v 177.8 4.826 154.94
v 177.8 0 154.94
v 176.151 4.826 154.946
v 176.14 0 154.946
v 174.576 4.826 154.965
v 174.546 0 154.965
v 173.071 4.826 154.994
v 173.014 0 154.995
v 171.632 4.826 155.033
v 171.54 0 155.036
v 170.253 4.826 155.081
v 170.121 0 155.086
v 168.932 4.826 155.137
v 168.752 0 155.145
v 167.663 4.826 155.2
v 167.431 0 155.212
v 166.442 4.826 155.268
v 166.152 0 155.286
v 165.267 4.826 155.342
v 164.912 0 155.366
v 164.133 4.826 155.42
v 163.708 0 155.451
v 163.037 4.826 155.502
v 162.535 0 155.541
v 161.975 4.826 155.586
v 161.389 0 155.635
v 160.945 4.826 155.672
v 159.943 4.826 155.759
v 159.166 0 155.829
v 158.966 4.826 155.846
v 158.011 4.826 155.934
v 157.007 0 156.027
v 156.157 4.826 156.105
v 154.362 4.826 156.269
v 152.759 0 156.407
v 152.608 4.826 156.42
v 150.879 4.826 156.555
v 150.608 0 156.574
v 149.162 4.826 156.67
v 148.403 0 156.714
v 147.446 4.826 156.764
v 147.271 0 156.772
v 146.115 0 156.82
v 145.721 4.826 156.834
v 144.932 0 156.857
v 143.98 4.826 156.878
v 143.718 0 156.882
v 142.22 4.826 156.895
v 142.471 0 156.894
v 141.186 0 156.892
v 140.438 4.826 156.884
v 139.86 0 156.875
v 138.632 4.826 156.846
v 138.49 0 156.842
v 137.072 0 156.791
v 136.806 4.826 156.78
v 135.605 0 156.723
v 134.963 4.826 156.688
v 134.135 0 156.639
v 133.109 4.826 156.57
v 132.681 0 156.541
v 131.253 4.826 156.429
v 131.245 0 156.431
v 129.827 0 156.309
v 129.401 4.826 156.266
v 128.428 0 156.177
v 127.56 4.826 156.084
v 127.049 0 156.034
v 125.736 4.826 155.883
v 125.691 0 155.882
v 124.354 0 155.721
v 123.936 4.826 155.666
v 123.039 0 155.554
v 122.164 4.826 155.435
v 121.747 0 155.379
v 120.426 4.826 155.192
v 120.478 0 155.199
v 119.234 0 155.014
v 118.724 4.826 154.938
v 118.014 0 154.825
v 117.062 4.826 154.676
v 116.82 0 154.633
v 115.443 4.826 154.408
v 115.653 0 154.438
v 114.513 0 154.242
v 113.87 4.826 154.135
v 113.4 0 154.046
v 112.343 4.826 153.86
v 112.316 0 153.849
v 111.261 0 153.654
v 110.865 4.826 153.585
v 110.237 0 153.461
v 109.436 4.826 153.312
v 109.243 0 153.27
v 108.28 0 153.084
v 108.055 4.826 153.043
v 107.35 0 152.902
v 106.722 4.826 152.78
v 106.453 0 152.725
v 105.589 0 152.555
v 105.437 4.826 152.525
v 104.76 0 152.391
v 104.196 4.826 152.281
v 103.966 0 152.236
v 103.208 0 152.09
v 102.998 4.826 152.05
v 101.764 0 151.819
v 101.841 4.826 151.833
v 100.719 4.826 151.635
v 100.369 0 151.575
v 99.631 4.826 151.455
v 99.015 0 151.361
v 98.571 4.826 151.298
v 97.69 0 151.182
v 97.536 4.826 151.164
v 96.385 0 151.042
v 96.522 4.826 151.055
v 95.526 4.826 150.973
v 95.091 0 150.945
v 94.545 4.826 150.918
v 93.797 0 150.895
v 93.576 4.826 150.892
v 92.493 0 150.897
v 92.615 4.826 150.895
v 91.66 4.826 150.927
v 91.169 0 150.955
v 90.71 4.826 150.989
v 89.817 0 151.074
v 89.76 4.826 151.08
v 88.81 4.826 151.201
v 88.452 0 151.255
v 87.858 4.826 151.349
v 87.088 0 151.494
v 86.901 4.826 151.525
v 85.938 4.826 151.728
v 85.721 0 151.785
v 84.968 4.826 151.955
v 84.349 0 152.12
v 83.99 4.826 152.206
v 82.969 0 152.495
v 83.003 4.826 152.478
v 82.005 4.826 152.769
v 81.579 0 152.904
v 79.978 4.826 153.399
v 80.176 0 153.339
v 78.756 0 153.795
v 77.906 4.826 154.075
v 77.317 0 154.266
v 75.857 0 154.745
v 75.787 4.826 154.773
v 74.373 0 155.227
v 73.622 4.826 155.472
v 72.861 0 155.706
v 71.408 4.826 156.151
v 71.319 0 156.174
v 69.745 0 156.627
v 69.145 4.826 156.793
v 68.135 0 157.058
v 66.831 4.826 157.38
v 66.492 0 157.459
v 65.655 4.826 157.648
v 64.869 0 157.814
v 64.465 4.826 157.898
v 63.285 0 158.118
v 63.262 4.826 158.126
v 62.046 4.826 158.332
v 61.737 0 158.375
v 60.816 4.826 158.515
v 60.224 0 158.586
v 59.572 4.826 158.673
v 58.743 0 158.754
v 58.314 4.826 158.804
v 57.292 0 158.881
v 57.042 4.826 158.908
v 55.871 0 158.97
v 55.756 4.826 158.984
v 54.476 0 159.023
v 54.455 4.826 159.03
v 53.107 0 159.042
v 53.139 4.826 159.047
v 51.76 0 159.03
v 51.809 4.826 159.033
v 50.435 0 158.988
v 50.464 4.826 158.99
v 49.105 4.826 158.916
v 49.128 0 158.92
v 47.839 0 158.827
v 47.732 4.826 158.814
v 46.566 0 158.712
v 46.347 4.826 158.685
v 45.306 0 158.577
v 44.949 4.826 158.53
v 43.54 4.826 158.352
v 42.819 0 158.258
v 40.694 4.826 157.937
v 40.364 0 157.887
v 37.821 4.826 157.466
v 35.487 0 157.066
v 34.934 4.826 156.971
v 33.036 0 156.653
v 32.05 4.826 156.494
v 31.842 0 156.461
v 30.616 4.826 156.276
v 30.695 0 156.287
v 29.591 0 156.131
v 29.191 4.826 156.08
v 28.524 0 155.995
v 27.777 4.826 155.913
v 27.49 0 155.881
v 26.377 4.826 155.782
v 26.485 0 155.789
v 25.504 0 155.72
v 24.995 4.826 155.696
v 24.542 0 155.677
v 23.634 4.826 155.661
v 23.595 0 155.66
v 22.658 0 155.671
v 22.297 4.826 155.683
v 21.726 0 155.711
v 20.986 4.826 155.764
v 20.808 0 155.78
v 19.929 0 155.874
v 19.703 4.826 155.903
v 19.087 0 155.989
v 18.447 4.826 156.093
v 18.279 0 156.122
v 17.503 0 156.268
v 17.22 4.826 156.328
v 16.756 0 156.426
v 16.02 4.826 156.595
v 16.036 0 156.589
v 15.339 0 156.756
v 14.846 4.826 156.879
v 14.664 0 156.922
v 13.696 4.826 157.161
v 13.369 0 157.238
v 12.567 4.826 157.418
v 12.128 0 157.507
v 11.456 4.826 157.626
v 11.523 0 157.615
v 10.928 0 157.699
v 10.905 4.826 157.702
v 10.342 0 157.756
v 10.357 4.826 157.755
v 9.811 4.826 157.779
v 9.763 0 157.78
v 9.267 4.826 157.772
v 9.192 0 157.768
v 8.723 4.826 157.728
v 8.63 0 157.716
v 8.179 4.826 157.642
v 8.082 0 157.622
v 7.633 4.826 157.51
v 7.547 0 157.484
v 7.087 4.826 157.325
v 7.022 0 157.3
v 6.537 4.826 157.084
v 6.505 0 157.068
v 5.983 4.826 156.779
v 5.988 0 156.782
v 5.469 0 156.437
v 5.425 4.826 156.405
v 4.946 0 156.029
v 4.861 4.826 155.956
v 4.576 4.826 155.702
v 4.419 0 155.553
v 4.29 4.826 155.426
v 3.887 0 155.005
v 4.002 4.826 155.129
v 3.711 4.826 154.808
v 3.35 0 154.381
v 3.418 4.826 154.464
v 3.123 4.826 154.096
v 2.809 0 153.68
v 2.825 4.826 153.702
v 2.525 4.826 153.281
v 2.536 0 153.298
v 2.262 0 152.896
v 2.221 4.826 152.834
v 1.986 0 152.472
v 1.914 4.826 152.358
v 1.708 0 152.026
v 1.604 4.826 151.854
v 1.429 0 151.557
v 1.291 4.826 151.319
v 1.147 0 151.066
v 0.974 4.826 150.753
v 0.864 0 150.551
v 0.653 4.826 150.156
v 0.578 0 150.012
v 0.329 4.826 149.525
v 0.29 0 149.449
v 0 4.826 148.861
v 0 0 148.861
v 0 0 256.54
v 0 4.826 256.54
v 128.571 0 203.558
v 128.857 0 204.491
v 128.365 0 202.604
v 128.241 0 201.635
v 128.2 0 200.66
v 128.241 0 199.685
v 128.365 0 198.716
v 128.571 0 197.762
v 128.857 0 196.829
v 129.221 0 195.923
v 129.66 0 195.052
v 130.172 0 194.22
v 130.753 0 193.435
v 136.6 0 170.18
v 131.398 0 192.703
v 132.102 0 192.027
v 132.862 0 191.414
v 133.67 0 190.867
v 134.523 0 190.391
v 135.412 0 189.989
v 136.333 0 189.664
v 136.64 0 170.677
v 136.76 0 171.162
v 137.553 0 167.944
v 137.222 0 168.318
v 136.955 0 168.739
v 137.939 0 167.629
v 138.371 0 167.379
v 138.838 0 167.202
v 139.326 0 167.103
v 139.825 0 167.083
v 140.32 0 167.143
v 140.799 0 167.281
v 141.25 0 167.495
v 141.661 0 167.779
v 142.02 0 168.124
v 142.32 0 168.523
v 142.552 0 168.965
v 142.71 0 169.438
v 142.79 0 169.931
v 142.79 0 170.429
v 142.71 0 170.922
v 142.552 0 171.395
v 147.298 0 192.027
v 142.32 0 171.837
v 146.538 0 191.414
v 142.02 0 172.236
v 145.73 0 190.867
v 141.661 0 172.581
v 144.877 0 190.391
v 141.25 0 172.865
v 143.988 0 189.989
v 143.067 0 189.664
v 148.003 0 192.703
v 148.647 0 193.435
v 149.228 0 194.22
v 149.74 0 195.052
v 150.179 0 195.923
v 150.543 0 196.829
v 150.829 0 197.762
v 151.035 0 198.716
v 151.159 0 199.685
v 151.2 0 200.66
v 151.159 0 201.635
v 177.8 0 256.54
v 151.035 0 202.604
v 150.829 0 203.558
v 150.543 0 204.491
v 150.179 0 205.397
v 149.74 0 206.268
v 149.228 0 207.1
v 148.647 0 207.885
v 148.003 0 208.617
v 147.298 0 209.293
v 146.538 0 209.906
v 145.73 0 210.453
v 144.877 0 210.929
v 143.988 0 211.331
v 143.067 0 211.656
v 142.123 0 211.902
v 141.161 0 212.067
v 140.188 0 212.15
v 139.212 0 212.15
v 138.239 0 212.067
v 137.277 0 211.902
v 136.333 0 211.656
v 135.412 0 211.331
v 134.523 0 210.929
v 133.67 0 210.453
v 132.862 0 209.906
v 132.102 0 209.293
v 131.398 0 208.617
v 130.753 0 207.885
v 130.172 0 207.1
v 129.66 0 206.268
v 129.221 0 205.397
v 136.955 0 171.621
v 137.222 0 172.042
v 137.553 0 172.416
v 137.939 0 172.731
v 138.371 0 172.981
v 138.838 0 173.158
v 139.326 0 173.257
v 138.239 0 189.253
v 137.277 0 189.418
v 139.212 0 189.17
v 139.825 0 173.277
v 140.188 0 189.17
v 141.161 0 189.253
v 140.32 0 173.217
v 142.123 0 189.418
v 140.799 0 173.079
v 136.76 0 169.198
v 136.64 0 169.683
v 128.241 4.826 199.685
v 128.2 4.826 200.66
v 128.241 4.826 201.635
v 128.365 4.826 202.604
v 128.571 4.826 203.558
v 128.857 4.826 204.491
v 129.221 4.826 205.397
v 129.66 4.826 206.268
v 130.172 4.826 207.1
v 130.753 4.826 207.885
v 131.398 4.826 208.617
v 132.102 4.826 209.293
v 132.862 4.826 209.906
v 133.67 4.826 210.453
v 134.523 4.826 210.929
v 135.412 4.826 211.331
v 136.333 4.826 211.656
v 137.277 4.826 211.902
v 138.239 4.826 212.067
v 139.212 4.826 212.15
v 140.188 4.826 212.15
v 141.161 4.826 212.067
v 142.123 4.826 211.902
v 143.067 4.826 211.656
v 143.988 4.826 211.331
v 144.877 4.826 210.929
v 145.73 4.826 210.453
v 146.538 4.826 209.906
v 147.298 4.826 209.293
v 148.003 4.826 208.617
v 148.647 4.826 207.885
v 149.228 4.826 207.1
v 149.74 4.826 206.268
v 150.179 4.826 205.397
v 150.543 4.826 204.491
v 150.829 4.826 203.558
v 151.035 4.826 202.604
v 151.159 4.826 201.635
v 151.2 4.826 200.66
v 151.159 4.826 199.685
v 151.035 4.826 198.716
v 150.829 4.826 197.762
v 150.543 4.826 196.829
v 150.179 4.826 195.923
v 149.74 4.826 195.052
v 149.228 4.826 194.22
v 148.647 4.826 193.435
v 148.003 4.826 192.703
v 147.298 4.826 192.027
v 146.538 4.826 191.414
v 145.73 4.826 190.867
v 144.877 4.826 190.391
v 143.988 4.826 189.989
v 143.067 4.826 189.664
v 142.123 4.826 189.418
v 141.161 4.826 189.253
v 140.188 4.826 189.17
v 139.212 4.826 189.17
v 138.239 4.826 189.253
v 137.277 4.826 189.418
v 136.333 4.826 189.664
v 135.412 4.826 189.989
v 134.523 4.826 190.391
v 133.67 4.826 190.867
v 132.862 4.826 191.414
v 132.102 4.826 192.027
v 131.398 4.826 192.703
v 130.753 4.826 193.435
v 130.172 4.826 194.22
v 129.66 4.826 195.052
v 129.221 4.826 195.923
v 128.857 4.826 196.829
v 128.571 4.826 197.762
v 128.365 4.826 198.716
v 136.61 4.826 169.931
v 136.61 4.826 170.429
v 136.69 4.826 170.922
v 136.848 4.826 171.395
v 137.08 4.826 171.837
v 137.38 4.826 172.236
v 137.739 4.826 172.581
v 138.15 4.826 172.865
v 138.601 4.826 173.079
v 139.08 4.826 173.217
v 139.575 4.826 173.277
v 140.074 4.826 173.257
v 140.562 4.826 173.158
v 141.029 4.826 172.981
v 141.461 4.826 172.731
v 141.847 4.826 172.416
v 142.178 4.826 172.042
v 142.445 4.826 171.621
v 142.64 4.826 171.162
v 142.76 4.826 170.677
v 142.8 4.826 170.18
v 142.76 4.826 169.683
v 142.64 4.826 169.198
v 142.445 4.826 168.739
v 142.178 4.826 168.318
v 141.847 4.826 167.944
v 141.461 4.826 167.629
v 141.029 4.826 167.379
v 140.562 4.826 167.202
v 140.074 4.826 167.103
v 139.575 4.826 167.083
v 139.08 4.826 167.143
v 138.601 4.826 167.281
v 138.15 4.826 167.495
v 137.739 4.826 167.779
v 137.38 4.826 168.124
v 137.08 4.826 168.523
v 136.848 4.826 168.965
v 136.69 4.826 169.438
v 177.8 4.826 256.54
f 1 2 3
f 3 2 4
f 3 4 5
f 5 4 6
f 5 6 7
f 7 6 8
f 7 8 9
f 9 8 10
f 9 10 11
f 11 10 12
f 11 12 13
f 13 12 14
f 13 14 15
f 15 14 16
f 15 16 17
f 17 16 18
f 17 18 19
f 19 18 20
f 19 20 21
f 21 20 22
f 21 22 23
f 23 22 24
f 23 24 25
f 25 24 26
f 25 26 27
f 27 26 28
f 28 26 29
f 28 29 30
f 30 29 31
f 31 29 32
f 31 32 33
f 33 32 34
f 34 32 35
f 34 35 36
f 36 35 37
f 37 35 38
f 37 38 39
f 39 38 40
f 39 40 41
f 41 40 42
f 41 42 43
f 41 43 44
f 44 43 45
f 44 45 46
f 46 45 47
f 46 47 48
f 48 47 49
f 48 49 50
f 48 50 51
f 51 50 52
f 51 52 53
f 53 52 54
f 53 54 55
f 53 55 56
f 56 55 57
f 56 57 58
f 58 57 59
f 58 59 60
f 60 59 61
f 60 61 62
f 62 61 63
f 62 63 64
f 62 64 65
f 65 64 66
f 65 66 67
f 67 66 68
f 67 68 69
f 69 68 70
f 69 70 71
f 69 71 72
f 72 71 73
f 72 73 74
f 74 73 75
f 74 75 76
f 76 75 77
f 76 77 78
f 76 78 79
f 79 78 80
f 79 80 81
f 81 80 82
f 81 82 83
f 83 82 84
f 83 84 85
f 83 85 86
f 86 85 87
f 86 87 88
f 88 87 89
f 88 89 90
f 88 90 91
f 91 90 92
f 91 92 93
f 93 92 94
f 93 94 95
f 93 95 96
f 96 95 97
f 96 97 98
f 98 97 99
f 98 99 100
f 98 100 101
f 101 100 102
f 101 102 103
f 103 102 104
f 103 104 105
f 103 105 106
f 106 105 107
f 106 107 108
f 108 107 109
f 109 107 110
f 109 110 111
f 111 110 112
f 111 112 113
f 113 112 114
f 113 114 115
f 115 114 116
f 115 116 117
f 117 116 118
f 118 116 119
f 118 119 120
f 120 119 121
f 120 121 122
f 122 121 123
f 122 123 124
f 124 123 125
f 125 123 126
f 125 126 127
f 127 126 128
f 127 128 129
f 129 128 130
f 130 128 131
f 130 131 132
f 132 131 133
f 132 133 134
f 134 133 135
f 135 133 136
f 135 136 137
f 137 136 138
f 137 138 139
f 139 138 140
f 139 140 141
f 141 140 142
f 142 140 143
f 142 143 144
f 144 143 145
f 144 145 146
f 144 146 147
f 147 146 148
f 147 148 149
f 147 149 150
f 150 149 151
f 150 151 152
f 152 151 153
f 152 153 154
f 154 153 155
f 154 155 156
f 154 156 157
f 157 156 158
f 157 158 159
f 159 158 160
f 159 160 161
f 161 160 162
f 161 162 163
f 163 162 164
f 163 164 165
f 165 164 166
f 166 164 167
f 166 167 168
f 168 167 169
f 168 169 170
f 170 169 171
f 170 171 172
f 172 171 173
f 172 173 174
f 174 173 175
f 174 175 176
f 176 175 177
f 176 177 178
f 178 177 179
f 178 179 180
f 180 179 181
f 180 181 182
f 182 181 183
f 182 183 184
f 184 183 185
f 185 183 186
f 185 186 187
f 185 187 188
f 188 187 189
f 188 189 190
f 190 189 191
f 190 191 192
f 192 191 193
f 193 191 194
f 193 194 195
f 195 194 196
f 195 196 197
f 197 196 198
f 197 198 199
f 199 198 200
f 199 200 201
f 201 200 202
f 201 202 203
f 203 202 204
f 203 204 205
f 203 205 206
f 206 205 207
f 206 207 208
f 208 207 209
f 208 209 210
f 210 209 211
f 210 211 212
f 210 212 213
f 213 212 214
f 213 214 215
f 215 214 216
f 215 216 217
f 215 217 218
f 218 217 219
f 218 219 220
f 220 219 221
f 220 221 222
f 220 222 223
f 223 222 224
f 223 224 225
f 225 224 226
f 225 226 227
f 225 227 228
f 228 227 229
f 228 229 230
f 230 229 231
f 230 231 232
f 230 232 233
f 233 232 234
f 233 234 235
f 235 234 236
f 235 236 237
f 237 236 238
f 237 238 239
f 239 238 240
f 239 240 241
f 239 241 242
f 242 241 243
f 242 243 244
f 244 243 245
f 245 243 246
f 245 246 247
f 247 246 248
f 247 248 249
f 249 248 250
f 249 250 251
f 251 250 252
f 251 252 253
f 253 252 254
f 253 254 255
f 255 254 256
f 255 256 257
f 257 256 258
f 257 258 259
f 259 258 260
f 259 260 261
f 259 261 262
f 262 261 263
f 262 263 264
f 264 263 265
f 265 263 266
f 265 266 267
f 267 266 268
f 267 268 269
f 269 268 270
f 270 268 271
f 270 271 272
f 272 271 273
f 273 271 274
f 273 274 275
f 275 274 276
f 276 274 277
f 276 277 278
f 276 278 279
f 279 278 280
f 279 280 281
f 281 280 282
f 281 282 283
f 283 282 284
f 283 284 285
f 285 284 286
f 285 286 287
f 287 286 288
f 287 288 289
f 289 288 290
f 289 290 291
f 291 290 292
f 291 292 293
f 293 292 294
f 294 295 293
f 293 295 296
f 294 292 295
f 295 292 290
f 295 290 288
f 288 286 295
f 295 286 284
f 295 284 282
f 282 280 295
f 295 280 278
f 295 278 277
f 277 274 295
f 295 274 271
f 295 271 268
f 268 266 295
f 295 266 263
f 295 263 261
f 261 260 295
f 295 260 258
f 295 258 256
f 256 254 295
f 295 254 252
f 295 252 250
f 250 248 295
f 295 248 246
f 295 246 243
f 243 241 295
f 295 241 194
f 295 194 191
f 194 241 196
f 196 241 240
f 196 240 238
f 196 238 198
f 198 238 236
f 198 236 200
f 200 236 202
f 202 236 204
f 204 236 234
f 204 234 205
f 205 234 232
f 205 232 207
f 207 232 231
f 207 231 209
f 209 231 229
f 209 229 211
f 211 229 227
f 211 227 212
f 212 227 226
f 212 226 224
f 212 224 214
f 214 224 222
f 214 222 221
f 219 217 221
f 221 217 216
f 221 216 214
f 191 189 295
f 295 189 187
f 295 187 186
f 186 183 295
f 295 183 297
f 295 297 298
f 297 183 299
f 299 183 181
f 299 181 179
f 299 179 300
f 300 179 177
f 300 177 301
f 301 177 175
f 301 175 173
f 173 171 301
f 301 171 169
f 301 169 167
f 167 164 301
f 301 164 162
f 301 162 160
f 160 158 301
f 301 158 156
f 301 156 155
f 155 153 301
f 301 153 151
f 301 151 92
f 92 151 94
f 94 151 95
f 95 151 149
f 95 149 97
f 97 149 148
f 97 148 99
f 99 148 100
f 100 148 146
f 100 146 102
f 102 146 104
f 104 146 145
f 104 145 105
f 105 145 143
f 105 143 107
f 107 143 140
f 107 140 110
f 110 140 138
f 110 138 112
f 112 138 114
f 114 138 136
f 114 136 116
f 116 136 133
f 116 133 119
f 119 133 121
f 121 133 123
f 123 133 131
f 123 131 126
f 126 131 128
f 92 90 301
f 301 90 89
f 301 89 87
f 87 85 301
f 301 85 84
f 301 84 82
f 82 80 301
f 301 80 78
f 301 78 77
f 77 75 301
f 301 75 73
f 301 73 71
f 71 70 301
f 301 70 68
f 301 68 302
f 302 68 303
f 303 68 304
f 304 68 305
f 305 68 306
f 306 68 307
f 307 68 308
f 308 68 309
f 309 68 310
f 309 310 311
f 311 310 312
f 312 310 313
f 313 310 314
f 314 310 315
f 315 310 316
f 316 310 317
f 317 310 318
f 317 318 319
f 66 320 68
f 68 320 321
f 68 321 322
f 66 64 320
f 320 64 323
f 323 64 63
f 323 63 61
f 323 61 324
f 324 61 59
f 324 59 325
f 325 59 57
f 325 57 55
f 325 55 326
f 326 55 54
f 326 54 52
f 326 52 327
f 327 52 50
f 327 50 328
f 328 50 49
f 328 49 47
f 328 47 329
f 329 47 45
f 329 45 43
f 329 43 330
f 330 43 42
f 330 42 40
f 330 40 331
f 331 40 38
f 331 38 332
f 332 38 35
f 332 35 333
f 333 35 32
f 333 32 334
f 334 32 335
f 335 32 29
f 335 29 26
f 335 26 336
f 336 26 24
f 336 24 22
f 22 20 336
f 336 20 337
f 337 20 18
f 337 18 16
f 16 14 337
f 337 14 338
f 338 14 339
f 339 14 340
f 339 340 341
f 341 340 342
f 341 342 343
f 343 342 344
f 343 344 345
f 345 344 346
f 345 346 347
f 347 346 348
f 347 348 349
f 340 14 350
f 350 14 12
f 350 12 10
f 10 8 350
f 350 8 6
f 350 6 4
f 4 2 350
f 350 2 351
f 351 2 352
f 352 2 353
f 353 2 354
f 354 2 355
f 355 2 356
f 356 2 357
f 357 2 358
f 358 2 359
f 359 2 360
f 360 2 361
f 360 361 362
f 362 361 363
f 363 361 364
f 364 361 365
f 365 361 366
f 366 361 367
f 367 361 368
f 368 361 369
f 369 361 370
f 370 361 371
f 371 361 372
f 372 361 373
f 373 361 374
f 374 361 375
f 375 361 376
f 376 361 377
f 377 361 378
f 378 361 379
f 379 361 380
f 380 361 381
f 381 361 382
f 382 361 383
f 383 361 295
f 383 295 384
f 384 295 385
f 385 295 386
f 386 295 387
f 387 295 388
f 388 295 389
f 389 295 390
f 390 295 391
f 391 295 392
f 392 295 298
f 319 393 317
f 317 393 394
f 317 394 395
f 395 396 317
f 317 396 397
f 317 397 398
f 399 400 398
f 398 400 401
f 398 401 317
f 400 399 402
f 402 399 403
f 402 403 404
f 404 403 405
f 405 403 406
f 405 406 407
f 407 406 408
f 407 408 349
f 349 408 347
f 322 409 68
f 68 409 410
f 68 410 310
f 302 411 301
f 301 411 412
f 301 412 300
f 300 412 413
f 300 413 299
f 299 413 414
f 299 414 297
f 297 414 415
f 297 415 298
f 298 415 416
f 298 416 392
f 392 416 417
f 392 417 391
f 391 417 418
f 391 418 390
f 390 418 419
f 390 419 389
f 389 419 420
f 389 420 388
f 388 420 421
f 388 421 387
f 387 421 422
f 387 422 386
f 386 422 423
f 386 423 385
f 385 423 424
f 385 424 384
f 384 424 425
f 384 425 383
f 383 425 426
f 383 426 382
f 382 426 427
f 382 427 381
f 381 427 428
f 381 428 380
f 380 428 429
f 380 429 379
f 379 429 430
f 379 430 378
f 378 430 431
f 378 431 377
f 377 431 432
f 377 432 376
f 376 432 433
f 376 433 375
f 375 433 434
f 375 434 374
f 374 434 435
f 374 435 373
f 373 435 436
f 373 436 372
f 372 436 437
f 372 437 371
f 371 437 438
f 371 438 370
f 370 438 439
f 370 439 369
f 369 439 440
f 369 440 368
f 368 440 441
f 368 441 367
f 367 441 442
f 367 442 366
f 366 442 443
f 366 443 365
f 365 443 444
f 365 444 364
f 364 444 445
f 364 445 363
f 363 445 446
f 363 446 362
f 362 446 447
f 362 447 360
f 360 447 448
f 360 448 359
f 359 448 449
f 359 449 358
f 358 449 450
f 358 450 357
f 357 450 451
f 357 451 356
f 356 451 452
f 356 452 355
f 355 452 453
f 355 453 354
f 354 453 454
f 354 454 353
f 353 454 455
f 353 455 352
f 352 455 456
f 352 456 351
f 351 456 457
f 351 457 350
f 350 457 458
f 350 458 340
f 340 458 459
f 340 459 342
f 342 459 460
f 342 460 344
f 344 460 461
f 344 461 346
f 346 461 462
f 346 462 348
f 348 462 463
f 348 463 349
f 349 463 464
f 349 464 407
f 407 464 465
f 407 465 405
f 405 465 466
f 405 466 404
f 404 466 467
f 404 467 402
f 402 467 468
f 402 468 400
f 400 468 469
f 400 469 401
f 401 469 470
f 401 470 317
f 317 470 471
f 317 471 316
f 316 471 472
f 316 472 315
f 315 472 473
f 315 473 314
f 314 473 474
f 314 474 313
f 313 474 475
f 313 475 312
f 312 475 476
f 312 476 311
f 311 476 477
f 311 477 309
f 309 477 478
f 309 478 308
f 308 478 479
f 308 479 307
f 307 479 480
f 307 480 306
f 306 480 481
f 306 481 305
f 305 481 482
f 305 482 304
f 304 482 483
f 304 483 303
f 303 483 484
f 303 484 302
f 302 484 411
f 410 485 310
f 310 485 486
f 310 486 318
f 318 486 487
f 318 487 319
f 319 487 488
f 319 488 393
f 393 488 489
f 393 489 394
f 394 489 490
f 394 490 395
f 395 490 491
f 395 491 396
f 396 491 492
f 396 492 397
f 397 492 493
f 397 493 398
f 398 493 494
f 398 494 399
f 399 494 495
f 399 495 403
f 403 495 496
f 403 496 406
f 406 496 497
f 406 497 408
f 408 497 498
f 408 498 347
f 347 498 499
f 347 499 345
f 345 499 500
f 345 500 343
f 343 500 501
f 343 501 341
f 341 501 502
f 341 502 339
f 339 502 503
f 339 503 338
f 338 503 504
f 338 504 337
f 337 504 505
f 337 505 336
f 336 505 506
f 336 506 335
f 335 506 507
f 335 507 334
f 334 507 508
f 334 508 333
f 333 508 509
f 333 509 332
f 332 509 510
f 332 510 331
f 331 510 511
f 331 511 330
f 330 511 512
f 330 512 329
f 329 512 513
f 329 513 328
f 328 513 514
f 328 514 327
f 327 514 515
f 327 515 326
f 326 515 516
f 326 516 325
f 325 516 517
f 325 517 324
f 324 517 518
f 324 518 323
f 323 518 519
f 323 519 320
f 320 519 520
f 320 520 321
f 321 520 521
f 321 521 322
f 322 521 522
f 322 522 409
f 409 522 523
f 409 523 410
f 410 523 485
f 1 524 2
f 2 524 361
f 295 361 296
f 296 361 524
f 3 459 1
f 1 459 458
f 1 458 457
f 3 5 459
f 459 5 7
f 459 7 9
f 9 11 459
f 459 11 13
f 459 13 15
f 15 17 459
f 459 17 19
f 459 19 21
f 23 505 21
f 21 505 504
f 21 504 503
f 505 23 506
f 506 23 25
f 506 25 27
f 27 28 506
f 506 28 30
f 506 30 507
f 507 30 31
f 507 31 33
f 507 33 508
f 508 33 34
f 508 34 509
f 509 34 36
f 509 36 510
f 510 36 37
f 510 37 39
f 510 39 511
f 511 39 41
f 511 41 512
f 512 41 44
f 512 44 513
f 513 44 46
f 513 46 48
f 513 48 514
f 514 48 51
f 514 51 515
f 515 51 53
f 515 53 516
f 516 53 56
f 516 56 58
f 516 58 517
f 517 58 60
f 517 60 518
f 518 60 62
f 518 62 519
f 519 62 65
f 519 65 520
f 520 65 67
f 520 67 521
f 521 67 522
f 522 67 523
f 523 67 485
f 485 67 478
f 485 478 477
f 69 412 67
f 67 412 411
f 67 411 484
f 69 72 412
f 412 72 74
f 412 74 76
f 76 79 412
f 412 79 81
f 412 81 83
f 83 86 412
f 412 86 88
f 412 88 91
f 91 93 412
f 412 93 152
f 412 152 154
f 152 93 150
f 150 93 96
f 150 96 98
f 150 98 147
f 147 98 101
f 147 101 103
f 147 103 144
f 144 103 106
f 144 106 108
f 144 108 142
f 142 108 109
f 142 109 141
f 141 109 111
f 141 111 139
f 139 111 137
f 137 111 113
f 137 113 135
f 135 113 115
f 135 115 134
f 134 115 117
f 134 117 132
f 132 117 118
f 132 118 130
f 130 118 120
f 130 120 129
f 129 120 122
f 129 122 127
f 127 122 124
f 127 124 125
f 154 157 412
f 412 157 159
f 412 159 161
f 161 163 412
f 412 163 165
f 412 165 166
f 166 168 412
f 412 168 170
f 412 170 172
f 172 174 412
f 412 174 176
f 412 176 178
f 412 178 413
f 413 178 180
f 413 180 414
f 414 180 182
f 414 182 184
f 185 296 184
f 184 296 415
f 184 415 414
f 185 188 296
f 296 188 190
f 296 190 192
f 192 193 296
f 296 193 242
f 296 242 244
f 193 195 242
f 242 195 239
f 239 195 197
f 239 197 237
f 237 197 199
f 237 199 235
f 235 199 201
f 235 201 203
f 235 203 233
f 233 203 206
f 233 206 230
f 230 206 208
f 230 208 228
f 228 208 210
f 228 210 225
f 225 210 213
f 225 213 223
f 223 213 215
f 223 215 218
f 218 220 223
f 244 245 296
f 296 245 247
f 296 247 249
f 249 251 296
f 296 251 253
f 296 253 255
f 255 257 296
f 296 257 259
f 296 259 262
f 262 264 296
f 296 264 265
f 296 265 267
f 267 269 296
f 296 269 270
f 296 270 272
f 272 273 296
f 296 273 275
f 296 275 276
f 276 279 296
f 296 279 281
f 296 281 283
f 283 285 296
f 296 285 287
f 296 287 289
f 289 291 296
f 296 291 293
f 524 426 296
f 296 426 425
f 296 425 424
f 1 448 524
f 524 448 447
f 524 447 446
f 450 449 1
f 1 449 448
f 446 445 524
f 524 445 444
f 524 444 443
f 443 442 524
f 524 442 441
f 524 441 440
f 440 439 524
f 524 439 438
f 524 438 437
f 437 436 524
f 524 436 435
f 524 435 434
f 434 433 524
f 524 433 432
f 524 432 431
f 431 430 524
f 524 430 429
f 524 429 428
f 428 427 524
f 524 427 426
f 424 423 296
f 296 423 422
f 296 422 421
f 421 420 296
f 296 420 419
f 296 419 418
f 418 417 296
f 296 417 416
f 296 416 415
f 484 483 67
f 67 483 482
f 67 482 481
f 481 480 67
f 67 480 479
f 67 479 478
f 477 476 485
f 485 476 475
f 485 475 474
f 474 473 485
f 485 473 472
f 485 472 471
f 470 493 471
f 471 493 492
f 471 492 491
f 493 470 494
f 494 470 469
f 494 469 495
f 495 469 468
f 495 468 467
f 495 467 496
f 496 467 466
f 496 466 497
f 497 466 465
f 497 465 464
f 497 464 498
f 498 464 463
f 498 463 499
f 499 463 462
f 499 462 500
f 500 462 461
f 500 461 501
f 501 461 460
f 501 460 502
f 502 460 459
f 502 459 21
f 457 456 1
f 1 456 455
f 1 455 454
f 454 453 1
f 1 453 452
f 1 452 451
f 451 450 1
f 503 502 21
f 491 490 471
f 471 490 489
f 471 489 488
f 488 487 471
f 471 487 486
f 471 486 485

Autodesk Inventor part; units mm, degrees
ref_plane "YZ Plane" through (0, 0, 0) normal (1, 0, 0) x (0, 1, 0)
ref_plane "XZ Plane" through (0, 0, 0) normal (0, 1, 0) x (-1, 0, 0)
ref_plane "XY Plane" through (0, 0, 0) normal (0, 0, 1) x (1, 0, 0)
sketch "Sketch1" plane through (0, 0, 0) normal (0, 1, 0) x (-1, 0, 0)
  line L0 (0, 0) -> (-177.8, 0)
  line L1 (-177.8, 0) -> (-177.8, 256.54)
  line L2 (-177.8, 256.54) -> (0, 256.54)
  line L3 (0, 256.54) -> (0, 0)
  dimension "d0" = 177.8
  dimension "d1" = 256.54
extrude "Extrusion1" add sketch "Sketch1" along normal blind 4.826
sketch "Sketch2" plane through (0, 4.826, 0) normal (0, 1, 0) x (1, 0, 0)
  line L0 (0, -256.54) -> (177.8, -256.54) projected
  line L1 (177.8, -256.54) -> (177.8, 0) projected
  line L2 (177.8, 0) -> (0, 0) projected
  line L3 (0, 0) -> (0, -256.54) projected
  line L4 (0, -256.54) -> (177.8, -256.54) projected
  line L5 (177.8, -256.54) -> (177.8, 0) projected
  line L6 (88.9, -256.54) -> (177.8, -256.54)
  line L7 (177.8, -256.54) -> (177.8, -128.27)
  line L8 (177.8, -128.27) -> (88.9, -128.27)
  line L9 (88.9, -128.27) -> (88.9, -256.54)
  line L10 (0, -256.54) -> (177.8, -256.54) projected
  line L11 (88.9, -256.54) -> (0, -256.54)
  line L12 (0, 0) -> (0, -256.54) projected
  line L13 (177.8, 0) -> (0, 0) projected
  line L14 (0, 0) -> (0, -256.54) projected
  line L15 (0, -128.27) -> (50.8, -128.27)
  line L16 (50.8, -128.27) -> (50.8, 0)
  line L17 (50.8, -64.135) -> (177.8, -64.135)
  line L18 (146.05, -51.2875) -> (139.7, -51.2875)
  line L19 (139.7, -64.135) -> (139.7, -228.6)
  line L20 (139.7, -51.2875) -> (139.7, 0)
  line L21 (139.7, 0) -> (139.7, -12.7)
  line L22 (139.7, 0) -> (139.7, -25.4)
  circle A0 centre (139.7, -25.4) radius 10
  line L23 (139.7, -25.4) -> (139.7, -50.8)
  line L24 (139.7, -35.4) -> (139.7, -60.8)
  circle A1 centre (139.7, -56.0525) radius 8.1
  line L25 (139.7, -47.9525) -> (139.7, -56.0525)
  line L26 (139.7, -64.1525) -> (139.7, -84.9525)
  circle A2 centre (139.7, -84.9525) radius 8.1
  line L27 (139.7, -93.0525) -> (139.7, -113.8551)
  circle A3 centre (139.7, -113.8551) radius 8.1
  line L28 (139.7, -228.6) -> (139.7, -200.66)
  circle A4 centre (139.7, -200.66) radius 11.5
  line L29 (114.3, -200.66) -> (139.7, -200.66)
  line L30 (114.0965, -24.8721) -> (73.8465, -24.8721)
  line L31 (73.8465, -24.8721) -> (73.8465, -122.8721)
  line L32 (73.8465, -122.8721) -> (114.0965, -122.8721)
  line L33 (114.0965, -122.8721) -> (114.0965, -24.8721)
  line L34 (139.7, -200.66) -> (139.7, -175.26)
  line L35 (139.7, -175.26) -> (139.7, -170.18)
  circle A5 centre (139.7, -170.18) radius 3.1
  dimension "d14" = 20
  dimension "d18" = 16.2
  dimension "d9" = 50.8
  dimension "d13" = 25.4
  dimension "d17" = 25.4
  dimension "d19" = 8.1
  dimension "d20" = 20.8
  dimension "d22" = 20.8026
  dimension "d23" = 27.94
  dimension "d24" = 23
  dimension "d27" = 25.4
  dimension "d28" = 40.25
  dimension "d29" = 98
  dimension "d30" = 25.4
  dimension "d31" = 5.08
  dimension "d32" = 6.2
extrude "Extrusion3" cut sketch "Sketch2" against normal blind 25.4 contours A4 L19 | L19 L29 A4 | A5 L19 | L19 A5 | A3 L19 | L19 A3 | L31 L30 L33 L17 | L17 L33 L32 L31 | A1 L19 L17 | L17 A1 | L19 A1 L17 | A2 L19 | L19 A2 | A0 L20 | L20 A0 | L19 A4 L29
sketch "Sketch3" plane through (0, 4.826, 0) normal (0, 1, 0) x (1, 0, 0)
  circle A0 centre (139.7, -25.4) radius 10 projected
  circle A1 centre (139.7, -113.8551) radius 8.1 projected
  line L0 (114.0965, -122.8721) -> (73.8465, -122.8721) projected
  line L1 (73.8465, -122.8721) -> (73.8465, -24.8721) projected
  line L2 (73.8465, -24.8721) -> (114.0965, -24.8721) projected
  line L3 (114.0965, -24.8721) -> (114.0965, -122.8721) projected
  circle A2 centre (139.7, -56.0525) radius 8.1 projected
  circle A3 centre (139.7, -84.9525) radius 8.1 projected
  line L4 (177.8, -256.54) -> (177.8, 0) projected
  line L5 (177.8, 0) -> (0, 0) projected
  line L6 (0, 0) -> (0, -256.54) projected
  circle A4 centre (139.7, -200.66) radius 11.5 projected
  circle A5 centre (139.7, -25.4) radius 10 projected
  circle A6 centre (139.7, -113.8551) radius 8.1 projected
  line L7 (114.0965, -122.8721) -> (73.8465, -122.8721) projected
  line L8 (73.8465, -122.8721) -> (73.8465, -24.8721) projected
  line L9 (73.8465, -24.8721) -> (114.0965, -24.8721) projected
  line L10 (114.0965, -24.8721) -> (114.0965, -122.8721) projected
  circle A7 centre (139.7, -56.0525) radius 8.1 projected
  circle A8 centre (139.7, -84.9525) radius 8.1 projected
  circle A9 centre (139.7, -170.18) radius 3.1 projected
  line L11 (0, -256.54) -> (177.8, -256.54) projected
  line L12 (177.8, -256.54) -> (177.8, 0) projected
  line L13 (177.8, 0) -> (0, 0) projected
  line L14 (0, 0) -> (0, -256.54) projected
  line L15 (177.8, -256.54) -> (177.8, 0) projected
  line L16 (177.8, -256.54) -> (177.8, -154.94)
  line L17 (0, 0) -> (0, -256.54) projected
  line L18 (159.7965, -154.94) -> (177.8, -154.94)
  line L19 (177.8, -154.94) -> (159.7965, -154.94) construction
  line L20 (159.7965, -154.94) -> (147.8, -158.9118) construction
  line L21 (147.8, -158.9118) -> (108.366, -154.94) construction
  line L22 (108.366, -154.94) -> (91.2359, -147.0258) construction
  line L23 (91.2359, -147.0258) -> (69.5753, -158.9118) construction
  line L24 (69.5753, -158.9118) -> (42.1816, -161.3318) construction
  line L25 (42.1816, -161.3318) -> (15.9517, -150.1024) construction
  line L26 (15.9517, -150.1024) -> (7.0588, -163.4034) construction
  line L27 (7.0588, -163.4034) -> (0, -148.8608) construction
  spline S0 degree 4 poles (177.8, -154.94) (159.7965, -154.94) (147.8, -158.9118) (108.366, -154.94) (91.2359, -147.0258) (69.5753, -158.9118) (42.1816, -161.3318) (15.9517, -150.1024) (7.0588, -163.4034) (0, -148.8608) knots 1 1 1 1 1 2 3 4 5 6 7 7 7 7 7
  point P0 (0, -148.8608)
  dimension "d33" = 101.6
extrude "Extrusion4" cut sketch "Sketch3" against normal blind 25.4 contours S0 L6 L5 L4
properties part number "component box cover R"
